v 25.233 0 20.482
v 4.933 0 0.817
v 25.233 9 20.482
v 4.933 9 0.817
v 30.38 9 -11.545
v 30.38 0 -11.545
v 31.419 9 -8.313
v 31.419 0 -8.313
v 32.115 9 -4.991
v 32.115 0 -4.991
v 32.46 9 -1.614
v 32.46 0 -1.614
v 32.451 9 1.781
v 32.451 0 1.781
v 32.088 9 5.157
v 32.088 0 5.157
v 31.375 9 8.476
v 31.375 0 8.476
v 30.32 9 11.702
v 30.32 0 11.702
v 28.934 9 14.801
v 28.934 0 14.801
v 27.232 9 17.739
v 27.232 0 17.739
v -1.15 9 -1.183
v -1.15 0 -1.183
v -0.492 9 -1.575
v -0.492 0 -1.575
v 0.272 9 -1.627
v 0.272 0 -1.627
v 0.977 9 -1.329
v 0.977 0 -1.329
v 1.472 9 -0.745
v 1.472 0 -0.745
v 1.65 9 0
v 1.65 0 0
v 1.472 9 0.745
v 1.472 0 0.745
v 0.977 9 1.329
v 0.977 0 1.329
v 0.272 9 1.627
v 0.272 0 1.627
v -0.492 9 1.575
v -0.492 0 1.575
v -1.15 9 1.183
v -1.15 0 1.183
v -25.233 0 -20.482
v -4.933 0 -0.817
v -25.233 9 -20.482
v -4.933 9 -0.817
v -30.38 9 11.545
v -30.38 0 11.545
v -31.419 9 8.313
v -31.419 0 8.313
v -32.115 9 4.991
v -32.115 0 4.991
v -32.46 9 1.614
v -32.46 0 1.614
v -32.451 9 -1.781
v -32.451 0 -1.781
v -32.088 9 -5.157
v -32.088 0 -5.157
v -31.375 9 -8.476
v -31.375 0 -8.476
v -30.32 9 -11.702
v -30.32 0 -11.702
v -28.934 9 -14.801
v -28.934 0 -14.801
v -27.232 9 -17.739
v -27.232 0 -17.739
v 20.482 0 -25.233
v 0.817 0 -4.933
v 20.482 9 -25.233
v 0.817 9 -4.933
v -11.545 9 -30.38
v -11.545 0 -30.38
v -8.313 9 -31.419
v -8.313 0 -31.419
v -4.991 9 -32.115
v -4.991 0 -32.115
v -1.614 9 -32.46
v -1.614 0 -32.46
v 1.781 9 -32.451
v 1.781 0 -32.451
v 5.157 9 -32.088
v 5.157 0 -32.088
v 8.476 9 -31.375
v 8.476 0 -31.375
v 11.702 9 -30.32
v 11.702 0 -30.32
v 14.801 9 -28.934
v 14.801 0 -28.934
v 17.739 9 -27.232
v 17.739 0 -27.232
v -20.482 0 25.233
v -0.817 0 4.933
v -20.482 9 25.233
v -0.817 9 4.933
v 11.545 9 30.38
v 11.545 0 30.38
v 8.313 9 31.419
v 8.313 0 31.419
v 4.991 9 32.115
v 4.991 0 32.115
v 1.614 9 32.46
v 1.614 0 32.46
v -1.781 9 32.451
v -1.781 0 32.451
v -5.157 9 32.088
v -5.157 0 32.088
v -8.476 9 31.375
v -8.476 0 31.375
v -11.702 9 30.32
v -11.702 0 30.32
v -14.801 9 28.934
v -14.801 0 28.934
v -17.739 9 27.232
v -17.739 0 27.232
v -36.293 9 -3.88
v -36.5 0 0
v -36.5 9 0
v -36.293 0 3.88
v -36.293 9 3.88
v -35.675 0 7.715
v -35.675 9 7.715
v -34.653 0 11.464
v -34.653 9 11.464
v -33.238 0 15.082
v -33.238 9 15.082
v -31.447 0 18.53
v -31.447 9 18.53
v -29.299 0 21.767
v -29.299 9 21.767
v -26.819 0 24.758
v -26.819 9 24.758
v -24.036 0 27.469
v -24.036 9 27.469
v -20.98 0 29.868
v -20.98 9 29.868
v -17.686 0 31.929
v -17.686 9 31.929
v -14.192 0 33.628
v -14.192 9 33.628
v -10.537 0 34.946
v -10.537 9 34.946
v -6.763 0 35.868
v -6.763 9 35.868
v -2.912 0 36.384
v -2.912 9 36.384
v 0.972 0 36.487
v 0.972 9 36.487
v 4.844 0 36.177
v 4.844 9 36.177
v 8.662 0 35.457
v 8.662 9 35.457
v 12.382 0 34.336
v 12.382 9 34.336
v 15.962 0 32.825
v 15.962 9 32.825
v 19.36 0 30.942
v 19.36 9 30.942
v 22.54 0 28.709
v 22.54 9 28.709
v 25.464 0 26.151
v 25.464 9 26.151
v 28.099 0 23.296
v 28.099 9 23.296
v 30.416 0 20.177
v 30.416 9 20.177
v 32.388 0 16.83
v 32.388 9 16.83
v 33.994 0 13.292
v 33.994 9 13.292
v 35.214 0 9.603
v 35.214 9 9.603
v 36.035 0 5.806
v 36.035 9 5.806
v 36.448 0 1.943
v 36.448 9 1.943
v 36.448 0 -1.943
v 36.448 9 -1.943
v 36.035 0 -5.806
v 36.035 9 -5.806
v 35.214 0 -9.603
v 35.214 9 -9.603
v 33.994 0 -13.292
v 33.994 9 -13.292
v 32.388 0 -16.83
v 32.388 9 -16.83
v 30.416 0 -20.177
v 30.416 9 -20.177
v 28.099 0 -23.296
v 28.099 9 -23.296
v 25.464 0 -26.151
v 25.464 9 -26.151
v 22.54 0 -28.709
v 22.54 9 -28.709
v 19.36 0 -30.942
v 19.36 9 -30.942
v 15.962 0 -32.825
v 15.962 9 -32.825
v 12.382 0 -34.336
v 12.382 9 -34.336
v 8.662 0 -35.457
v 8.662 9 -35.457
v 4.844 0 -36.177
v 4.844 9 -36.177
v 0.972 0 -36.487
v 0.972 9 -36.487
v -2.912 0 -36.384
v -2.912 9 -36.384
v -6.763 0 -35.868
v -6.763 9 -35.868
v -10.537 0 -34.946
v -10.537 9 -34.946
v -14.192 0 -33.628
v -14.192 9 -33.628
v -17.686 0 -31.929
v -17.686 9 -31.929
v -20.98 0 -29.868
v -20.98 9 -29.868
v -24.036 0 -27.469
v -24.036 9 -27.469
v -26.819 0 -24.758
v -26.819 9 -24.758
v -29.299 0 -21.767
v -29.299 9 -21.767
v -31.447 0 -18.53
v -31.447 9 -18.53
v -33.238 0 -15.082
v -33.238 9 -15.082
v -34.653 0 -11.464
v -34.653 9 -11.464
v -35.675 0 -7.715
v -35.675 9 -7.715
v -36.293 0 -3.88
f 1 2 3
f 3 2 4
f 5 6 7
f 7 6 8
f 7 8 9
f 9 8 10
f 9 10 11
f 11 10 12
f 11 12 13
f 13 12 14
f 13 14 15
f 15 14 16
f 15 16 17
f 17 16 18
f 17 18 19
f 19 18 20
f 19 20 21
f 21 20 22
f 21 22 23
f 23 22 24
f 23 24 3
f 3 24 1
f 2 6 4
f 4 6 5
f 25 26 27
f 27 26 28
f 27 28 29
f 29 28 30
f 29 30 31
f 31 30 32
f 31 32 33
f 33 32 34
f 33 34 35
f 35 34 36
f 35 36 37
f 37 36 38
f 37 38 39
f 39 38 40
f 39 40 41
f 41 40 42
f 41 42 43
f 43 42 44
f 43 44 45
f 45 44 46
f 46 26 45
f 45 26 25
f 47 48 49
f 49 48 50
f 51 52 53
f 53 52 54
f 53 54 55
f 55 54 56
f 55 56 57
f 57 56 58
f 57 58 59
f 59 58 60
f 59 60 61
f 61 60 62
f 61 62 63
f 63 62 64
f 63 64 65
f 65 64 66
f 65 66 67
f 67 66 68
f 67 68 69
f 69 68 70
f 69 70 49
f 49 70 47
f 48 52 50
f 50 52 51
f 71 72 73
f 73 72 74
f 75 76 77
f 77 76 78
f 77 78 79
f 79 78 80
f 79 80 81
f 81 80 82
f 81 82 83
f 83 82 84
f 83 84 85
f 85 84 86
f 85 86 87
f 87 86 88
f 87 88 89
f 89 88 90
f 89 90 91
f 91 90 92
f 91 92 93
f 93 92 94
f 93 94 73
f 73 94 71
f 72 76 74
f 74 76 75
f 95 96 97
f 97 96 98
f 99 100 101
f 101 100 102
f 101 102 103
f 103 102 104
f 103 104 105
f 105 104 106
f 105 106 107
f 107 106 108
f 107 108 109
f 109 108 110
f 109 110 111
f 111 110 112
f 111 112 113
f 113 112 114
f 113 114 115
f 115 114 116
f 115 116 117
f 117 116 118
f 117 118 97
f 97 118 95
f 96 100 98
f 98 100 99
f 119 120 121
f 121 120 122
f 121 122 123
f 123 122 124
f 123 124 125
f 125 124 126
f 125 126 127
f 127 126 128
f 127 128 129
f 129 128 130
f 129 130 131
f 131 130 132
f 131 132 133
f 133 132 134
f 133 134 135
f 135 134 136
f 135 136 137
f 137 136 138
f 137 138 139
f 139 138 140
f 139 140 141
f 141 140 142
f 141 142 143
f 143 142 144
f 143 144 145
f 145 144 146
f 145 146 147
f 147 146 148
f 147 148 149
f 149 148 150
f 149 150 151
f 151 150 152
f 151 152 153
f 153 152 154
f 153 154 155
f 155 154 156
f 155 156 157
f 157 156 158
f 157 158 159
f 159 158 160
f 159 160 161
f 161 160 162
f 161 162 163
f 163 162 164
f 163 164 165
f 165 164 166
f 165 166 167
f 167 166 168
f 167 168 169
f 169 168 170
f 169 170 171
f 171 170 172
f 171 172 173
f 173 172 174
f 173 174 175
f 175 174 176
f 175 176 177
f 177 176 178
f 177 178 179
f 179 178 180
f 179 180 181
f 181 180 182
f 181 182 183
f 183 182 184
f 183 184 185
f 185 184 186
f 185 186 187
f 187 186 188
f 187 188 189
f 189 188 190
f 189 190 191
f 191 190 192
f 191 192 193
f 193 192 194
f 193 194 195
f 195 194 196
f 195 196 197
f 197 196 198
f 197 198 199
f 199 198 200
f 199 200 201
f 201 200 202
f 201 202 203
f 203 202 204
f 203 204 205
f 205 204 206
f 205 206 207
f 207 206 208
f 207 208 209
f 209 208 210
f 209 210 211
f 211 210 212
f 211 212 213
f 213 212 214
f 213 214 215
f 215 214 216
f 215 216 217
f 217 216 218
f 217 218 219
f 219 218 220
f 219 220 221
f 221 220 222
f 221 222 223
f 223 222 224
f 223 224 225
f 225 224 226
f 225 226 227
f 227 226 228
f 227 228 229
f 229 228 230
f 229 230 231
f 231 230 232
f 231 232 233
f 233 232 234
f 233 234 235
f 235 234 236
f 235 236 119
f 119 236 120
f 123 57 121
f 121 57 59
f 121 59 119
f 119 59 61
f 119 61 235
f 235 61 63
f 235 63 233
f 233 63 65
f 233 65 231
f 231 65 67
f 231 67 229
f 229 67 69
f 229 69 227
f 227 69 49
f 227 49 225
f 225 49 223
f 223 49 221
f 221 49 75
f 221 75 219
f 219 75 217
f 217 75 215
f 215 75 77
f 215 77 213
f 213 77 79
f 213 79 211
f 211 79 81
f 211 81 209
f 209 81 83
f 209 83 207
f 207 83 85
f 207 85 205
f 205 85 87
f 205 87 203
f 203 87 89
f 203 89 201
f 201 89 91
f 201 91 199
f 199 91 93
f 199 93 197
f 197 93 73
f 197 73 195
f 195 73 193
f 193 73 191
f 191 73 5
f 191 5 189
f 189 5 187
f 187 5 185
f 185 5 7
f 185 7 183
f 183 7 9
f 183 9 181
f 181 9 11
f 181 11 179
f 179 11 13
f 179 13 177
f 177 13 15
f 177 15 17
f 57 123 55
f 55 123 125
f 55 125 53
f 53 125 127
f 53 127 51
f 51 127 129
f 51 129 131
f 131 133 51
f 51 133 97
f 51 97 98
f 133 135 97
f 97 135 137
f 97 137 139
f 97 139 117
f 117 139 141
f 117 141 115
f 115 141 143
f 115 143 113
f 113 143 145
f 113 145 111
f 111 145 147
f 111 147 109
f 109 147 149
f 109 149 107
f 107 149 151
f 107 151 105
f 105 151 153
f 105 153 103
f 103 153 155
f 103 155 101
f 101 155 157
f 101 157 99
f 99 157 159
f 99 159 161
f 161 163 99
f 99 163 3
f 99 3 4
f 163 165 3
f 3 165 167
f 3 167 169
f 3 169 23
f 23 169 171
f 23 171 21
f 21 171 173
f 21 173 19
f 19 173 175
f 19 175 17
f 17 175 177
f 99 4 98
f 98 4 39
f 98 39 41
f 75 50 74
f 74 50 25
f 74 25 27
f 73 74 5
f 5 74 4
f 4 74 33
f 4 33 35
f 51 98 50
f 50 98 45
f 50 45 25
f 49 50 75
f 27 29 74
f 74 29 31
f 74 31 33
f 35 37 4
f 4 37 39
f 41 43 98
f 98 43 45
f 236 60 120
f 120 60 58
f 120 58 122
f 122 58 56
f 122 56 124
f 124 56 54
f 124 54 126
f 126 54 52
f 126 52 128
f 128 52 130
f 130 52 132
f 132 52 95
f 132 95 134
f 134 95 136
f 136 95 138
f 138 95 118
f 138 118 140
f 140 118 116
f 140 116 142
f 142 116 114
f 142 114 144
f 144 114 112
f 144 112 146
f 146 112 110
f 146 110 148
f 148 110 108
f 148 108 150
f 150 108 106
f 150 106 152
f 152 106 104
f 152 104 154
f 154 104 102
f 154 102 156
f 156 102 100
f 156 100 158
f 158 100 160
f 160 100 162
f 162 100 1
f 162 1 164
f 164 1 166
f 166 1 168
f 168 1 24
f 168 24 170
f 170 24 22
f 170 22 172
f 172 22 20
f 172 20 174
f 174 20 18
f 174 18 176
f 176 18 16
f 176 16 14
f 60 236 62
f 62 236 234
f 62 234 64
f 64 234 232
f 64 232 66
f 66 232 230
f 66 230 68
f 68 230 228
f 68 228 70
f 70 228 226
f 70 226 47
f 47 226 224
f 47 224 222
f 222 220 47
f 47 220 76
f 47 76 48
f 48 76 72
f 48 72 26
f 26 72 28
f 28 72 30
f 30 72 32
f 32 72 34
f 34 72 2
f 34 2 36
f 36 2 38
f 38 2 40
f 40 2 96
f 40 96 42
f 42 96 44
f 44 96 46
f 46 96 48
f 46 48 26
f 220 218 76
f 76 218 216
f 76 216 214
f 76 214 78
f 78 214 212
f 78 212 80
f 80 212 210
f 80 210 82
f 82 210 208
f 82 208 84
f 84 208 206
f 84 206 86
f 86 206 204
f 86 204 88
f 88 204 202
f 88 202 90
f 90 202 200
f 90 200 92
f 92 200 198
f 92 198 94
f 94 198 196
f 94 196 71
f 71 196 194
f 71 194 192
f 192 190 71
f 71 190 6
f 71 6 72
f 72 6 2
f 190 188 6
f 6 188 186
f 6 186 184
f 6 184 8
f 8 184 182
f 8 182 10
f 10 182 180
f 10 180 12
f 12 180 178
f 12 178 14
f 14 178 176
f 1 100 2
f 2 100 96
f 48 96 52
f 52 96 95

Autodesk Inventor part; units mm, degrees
ref_plane "YZ Plane" through (0, 0, 0) normal (1, 0, 0) x (0, 1, 0)
ref_plane "XZ Plane" through (0, 0, 0) normal (0, 1, 0) x (-1, 0, 0)
ref_plane "XY Plane" through (0, 0, 0) normal (0, 0, 1) x (1, 0, 0)
sketch "Szkic1" plane through (0, 0, 0) normal (0, 1, 0) x (-1, 0, 0)
  circle A0 centre (0, 0) radius 36.5
  circle A1 centre (0, 0) radius 32.5
  circle A2 centre (0, 0) radius 5
  circle A3 centre (0, 0) radius 1.65
  line L0 (1.15, 1.1832) -> (1.15, -1.1832)
  line L1 (-4.9328, 0.8172) -> (-25.2334, 20.4824)
  line L2 (-11.5454, 30.3802) -> (0.8172, 4.9328)
  line L3 (-4.9328, 0.8172) -> (-30.3802, -11.5454)
  line L4 (4.9328, -0.8172) -> (25.2334, -20.4824)
  line L5 (0.8172, 4.9328) -> (20.4824, 25.2334)
  line L6 (4.9328, -0.8172) -> (30.3802, 11.5454)
  line L7 (-0.8172, -4.9328) -> (-20.4824, -25.2334)
  line L8 (-0.8172, -4.9328) -> (11.5454, -30.3802)
  dimension "d1" = 65
  dimension "d0" = 73
  dimension "d2" = 10
  dimension "d3" = 3.3
  dimension "d4" = 2.8
  dimension "d6" = 20
  dimension "d7" = 20
  dimension "d14" = 20
  dimension "d15" = 20
  dimension "d16" = 5.75
  dimension "d17" = 5.75
  dimension "d18" = 5.75
  dimension "d19" = 5.75
  dimension "d20" = 70
  dimension "d21" = 70
  dimension "d22" = 70
extrude "Wyciągnięcie proste1" add sketch "Szkic1" along normal blind 9 contours A0 | L6 A2 L5 A1 | A1 L8 A2 L4 | A2 | L2 A2 L1 A1 | L7 A1 L3 A2 | A3 L0 picked at (1.3167, 0)
properties part number "kolko1"
